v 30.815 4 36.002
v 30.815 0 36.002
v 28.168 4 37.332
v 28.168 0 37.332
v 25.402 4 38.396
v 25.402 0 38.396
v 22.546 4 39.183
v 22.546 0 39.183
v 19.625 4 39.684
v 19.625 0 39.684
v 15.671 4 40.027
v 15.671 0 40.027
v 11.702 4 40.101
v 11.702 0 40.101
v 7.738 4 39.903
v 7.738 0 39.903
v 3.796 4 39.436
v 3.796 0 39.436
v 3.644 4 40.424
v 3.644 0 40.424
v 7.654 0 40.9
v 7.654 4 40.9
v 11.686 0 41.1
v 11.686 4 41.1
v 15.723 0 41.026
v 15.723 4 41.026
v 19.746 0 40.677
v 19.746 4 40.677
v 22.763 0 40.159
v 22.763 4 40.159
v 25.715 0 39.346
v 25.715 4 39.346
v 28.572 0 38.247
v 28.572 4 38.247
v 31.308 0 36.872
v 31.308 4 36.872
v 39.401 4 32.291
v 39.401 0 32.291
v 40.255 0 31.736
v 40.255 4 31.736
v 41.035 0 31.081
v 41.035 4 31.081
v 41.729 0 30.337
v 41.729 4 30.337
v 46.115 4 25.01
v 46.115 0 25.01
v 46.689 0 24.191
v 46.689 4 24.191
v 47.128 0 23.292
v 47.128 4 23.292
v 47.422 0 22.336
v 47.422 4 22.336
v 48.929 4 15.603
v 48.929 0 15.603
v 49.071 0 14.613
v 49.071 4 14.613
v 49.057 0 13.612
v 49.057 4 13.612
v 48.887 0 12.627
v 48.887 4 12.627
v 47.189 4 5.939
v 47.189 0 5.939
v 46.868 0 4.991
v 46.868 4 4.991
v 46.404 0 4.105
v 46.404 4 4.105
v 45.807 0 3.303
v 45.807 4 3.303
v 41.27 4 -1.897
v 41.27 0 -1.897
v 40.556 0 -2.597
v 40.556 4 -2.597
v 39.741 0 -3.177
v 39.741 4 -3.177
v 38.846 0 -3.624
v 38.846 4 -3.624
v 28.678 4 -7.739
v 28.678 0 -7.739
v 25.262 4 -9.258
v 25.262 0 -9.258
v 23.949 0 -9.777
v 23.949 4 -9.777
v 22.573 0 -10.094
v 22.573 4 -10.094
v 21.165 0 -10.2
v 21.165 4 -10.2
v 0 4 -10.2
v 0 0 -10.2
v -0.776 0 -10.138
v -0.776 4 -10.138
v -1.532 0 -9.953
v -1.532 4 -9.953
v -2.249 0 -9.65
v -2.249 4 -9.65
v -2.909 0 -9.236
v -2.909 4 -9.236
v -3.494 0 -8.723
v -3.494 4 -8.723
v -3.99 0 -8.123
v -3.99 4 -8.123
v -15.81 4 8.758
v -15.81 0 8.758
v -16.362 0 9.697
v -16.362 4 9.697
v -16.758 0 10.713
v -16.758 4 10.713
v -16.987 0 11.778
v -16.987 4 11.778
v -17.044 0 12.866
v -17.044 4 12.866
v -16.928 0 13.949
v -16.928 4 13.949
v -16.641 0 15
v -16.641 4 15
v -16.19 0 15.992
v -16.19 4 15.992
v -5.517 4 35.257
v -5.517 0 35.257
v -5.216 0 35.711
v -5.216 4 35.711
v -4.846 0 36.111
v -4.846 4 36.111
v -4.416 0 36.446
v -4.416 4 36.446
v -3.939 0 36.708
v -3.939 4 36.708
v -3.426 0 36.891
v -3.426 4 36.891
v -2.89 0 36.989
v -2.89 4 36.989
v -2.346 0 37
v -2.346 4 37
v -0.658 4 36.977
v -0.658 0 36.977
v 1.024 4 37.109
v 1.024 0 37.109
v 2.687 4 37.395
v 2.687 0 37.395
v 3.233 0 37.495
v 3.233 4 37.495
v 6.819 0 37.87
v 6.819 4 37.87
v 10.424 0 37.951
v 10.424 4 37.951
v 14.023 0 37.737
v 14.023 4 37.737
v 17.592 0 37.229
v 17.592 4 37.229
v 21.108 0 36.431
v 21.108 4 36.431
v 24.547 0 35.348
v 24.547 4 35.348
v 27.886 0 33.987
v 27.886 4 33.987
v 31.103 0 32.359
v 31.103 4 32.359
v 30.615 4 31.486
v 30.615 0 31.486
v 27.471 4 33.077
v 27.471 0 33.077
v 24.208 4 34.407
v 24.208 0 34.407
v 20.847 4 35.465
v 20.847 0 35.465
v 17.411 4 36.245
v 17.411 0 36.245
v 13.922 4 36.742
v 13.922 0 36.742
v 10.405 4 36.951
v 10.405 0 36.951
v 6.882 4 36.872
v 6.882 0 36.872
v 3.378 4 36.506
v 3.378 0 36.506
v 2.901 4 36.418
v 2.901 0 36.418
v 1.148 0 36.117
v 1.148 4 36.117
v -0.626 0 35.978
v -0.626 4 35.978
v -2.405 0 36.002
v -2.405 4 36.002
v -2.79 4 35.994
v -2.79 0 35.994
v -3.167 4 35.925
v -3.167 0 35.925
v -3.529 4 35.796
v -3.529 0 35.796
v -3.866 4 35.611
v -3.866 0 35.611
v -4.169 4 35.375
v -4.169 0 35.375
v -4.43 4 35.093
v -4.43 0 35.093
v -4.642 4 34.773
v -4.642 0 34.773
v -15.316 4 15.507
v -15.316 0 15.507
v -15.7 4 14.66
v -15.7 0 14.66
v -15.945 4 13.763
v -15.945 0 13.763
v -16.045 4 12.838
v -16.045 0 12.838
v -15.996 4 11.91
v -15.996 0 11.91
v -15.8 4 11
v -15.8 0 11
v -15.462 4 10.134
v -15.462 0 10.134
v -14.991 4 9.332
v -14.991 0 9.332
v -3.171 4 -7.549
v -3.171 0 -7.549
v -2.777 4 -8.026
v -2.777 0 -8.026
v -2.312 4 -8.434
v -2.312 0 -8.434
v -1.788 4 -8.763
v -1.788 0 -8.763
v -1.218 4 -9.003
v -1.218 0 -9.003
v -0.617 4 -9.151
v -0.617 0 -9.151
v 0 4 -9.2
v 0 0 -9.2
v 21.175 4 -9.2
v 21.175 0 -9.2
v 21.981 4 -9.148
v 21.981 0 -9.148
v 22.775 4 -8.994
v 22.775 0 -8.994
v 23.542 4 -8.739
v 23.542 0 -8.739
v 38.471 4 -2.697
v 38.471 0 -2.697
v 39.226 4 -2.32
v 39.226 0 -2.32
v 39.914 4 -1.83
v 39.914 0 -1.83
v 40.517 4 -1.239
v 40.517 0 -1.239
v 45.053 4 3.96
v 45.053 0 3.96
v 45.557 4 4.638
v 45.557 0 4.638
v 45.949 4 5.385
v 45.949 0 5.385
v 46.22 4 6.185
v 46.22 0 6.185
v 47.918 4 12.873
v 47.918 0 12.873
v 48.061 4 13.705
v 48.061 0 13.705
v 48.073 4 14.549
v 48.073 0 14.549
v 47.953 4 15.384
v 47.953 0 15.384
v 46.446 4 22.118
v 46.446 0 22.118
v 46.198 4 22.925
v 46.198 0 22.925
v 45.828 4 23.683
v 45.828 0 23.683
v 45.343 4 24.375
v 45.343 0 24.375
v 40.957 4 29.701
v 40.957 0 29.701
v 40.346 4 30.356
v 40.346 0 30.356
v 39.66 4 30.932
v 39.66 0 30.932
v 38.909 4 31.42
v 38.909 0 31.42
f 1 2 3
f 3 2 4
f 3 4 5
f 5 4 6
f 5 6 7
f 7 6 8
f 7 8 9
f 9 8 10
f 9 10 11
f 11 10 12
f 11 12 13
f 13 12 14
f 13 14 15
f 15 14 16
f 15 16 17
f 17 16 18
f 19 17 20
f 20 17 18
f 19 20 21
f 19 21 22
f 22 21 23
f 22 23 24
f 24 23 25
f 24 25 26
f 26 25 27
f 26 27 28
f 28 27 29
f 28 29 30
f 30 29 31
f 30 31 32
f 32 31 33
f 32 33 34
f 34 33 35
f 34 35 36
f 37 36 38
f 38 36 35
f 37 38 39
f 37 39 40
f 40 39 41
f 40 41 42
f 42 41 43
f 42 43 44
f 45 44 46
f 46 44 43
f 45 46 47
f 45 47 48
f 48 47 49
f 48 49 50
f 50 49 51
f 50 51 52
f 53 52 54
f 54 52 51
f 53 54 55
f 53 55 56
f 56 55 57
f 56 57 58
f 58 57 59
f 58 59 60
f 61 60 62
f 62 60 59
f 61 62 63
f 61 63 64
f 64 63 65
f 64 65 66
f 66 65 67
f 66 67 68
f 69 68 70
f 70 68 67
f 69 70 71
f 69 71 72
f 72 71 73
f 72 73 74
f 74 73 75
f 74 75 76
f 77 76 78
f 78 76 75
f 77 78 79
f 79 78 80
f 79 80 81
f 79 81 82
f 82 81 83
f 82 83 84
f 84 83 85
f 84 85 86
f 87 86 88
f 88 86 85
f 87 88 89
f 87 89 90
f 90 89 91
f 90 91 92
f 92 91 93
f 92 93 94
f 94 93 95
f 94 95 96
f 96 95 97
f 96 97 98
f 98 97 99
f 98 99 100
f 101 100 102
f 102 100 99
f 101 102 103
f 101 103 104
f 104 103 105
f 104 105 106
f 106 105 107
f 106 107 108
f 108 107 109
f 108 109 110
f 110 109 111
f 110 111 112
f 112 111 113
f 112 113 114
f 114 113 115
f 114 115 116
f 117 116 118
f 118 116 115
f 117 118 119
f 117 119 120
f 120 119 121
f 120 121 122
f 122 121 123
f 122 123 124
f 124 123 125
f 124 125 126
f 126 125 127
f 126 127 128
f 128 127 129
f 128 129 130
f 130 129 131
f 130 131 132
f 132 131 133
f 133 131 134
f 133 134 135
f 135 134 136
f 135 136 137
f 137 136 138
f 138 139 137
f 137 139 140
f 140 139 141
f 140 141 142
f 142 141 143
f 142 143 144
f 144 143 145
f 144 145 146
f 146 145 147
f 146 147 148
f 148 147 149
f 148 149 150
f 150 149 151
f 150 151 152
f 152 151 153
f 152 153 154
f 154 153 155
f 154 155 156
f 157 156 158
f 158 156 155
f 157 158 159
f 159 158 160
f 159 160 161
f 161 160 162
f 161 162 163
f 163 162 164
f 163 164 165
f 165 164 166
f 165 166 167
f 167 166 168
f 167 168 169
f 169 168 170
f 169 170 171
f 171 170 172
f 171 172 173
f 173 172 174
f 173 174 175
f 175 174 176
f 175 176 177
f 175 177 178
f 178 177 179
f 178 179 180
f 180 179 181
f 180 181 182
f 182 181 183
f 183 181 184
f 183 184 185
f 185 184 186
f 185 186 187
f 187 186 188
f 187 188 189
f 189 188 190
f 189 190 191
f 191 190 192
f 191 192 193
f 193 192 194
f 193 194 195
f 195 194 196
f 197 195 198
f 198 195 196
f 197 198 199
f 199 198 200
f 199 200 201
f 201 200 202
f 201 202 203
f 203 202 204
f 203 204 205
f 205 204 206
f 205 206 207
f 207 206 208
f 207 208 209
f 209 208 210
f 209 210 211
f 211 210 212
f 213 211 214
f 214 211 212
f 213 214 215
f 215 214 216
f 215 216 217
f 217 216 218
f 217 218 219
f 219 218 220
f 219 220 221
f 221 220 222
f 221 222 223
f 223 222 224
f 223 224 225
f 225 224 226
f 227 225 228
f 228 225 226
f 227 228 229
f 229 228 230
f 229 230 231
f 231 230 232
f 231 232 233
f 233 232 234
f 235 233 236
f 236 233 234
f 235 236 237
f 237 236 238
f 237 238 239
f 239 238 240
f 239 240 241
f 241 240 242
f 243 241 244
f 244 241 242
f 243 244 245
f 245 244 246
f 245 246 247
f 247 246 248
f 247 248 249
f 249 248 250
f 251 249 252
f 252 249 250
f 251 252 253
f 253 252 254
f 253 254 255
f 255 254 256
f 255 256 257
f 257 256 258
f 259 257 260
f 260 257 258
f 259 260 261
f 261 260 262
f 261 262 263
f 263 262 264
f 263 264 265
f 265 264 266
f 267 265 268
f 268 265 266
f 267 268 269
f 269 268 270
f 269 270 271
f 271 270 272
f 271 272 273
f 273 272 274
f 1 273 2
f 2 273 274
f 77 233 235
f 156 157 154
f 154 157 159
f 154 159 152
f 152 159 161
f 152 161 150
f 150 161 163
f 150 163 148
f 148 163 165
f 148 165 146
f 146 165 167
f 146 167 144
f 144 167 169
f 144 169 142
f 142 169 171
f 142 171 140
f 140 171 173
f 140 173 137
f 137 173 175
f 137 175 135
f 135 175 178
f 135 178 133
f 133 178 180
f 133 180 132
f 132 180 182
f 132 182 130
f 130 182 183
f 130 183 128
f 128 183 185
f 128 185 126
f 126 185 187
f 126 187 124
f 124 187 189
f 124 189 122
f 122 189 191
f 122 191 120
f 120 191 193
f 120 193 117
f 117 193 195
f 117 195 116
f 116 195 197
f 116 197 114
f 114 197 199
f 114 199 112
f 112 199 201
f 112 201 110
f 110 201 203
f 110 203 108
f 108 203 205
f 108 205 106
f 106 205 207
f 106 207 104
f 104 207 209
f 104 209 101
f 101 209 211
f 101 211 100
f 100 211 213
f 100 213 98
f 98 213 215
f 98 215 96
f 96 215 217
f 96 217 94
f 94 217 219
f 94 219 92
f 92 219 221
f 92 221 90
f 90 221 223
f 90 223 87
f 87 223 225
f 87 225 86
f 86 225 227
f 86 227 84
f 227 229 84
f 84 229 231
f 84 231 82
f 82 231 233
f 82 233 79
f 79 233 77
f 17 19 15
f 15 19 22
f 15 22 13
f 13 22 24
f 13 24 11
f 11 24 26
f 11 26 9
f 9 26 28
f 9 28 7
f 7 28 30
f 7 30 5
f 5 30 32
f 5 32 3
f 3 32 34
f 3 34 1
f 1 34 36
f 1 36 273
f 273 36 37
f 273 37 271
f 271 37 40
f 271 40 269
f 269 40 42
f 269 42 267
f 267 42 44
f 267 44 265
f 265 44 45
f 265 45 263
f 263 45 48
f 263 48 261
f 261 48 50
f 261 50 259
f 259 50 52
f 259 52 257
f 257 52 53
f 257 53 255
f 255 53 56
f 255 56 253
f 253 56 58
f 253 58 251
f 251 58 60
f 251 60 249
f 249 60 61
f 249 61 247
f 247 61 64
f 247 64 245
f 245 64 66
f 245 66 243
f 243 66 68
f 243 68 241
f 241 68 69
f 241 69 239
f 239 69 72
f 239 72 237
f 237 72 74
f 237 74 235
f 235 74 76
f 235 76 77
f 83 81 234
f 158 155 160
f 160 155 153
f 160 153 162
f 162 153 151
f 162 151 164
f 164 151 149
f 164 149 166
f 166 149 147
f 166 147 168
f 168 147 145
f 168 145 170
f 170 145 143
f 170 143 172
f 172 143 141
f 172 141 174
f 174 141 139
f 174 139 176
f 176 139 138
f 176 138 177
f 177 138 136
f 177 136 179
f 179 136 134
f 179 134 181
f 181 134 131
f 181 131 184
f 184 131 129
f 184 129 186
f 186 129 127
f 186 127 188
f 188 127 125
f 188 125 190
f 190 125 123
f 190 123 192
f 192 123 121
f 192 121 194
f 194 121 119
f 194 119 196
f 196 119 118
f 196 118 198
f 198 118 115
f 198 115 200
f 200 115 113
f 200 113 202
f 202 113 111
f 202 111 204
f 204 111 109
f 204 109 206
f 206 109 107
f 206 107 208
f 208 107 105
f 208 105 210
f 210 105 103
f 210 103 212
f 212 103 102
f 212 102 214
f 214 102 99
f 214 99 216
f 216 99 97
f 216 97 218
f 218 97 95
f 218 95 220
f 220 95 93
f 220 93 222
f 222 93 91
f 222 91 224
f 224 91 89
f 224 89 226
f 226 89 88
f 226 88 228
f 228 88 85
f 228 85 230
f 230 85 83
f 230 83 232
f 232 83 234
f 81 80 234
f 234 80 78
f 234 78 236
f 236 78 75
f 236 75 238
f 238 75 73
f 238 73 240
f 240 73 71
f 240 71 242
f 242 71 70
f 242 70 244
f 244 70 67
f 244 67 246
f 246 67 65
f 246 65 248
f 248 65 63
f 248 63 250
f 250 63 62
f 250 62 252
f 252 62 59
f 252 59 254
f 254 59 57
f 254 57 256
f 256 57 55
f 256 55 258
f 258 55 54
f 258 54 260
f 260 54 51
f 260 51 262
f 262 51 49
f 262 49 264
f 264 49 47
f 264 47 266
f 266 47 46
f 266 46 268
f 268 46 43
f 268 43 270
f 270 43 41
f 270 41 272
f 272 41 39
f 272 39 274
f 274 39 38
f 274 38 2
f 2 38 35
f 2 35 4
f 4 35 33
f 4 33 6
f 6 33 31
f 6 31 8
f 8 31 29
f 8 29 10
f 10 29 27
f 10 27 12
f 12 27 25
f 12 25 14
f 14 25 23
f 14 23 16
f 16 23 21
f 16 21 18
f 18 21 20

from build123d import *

# Parameters (mm, degrees)
BOSS_EXTRUDE1_DEPTH = 4


with BuildPart() as part:
    # Sketch1 → Boss-Extrude1 (new body)
    with BuildSketch(Plane(origin=(0, 0, 0), x_dir=(1, 0, 0), z_dir=(0, 1, 0))):
        with BuildLine():
            ThreePointArc((30.815272538, -36.001699489), (25.402435992, -38.396198014), (19.625399795, -39.683938449))
            ThreePointArc((19.625399795, -39.683938449), (11.702107234, -40.100543502), (3.79576222, -39.435838094))
            Line((3.79576222, -39.435838094), (3.644269307, -40.424296438))
            ThreePointArc((3.644269307, -40.424296438), (11.686436005, -41.100420701), (19.745841387, -40.676658864))
            ThreePointArc((19.745841387, -40.676658864), (25.715015737, -39.346089535), (31.307877538, -36.871952506))
            Line((31.307877538, -36.871952506), (39.401230599, -32.290726007))
            ThreePointArc((39.401230599, -32.290726007), (40.654759367, -31.420634412), (41.728618671, -30.336558791))
            Line((41.728618671, -30.336558791), (46.115294675, -25.01048391))
            ThreePointArc((46.115294675, -25.01048391), (46.926204525, -23.750298002), (47.422252359, -22.336232991))
            Line((47.422252359, -22.336232991), (48.929279873, -15.602818696))
            ThreePointArc((48.929279873, -15.602818696), (49.083336252, -14.112211456), (48.886975652, -12.626585049))
            Line((48.886975652, -12.626585049), (47.189177971, -5.938724177))
            ThreePointArc((47.189177971, -5.938724177), (46.653139583, -4.539329252), (45.806739977, -3.302700361))
            Line((45.806739977, -3.302700361), (41.270456965, 1.896543473))
            ThreePointArc((41.270456965, 1.896543473), (40.159986728, 2.902773645), (38.846178779, 3.62357319))
            Line((38.846178779, 3.62357319), (28.678343339, 7.739009747))
            ThreePointArc((28.678343339, 7.739009747), (26.957465579, 8.469564765), (25.262216259, 9.257765654))
            ThreePointArc((25.262216259, 9.257765654), (23.267121819, 9.961406596), (21.165078625, 10.2))
            Line((21.165078625, 10.2), (0, 10.2))
            ThreePointArc((0, 10.2), (-2.249376643, 9.649581037), (-3.9904429, 8.122706909))
            Line((-3.9904429, 8.122706909), (-15.810441253, -8.758000179))
            ThreePointArc((-15.810441253, -8.758000179), (-17.037346005, -12.320539523), (-16.190374911, -15.991999971))
            Line((-16.190374911, -15.991999971), (-5.517086169, -35.257340666))
            ThreePointArc((-5.517086169, -35.257340666), (-4.183080077, -36.586813335), (-2.345658451, -37.000276272))
            ThreePointArc((-2.345658451, -37.000276272), (0.184189718, -37.023630883), (2.686718995, -37.395147249))
            ThreePointArc((2.686718995, -37.395147249), (2.95899063, -37.449951511), (3.233042455, -37.495017541))
            ThreePointArc((3.233042455, -37.495017541), (17.592116724, -37.228639758), (31.102694288, -32.358499632))
            Line((31.102694288, -32.358499632), (30.614795368, -31.485599499))
            ThreePointArc((30.614795368, -31.485599499), (17.410864376, -36.245203137), (3.377694822, -36.505535003))
            ThreePointArc((3.377694822, -36.505535003), (3.138815013, -36.466252781), (2.901486924, -36.418482139))
            ThreePointArc((2.901486924, -36.418482139), (0.262415361, -36.026695204), (-2.405465658, -36.002066325))
            ThreePointArc((-2.405465658, -36.002066325), (-3.701447688, -35.710439989), (-4.642357438, -34.772727782))
            Line((-4.642357438, -34.772727782), (-15.31564618, -15.507387087))
            ThreePointArc((-15.31564618, -15.507387087), (-16.038722362, -12.372987788), (-14.991289209, -9.331576615))
            Line((-14.991289209, -9.331576615), (-3.171290856, 7.549130473))
            ThreePointArc((-3.171290856, 7.549130473), (-1.78762803, 8.762570204), (0, 9.2))
            Line((0, 9.2), (21.174669732, 9.2))
            ThreePointArc((21.174669732, 9.2), (22.380727426, 9.083680421), (23.542324402, 8.739009747))
            Line((23.542324402, 8.739009747), (32.075036736, 5.285390097))
            Line((32.075036736, 5.285390097), (38.470995099, 2.696622703))
            ThreePointArc((38.470995099, 2.696622703), (39.579771769, 2.088310262), (40.516943366, 1.239111152))
            Line((40.516943366, 1.239111152), (45.053226377, -3.960132681))
            ThreePointArc((45.053226377, -3.960132681), (45.767537886, -5.003774765), (46.219922772, -6.184781812))
            Line((46.219922772, -6.184781812), (47.917720454, -12.872642684))
            ThreePointArc((47.917720454, -12.872642684), (48.083437256, -14.126424033), (47.953422729, -15.384408911))
            Line((47.953422729, -15.384408911), (46.446395215, -22.117823206))
            ThreePointArc((46.446395215, -22.117823206), (46.027760006, -23.311210944), (45.343399765, -24.374733765))
            Line((45.343399765, -24.374733765), (40.956723761, -29.700808646))
            ThreePointArc((40.956723761, -29.700808646), (40.011729115, -30.654793636), (38.908625599, -31.42047299))
            Line((38.908625599, -31.42047299), (30.815272538, -36.001699489))
        make_face()
    extrude(amount=BOSS_EXTRUDE1_DEPTH)


solid = part.part
